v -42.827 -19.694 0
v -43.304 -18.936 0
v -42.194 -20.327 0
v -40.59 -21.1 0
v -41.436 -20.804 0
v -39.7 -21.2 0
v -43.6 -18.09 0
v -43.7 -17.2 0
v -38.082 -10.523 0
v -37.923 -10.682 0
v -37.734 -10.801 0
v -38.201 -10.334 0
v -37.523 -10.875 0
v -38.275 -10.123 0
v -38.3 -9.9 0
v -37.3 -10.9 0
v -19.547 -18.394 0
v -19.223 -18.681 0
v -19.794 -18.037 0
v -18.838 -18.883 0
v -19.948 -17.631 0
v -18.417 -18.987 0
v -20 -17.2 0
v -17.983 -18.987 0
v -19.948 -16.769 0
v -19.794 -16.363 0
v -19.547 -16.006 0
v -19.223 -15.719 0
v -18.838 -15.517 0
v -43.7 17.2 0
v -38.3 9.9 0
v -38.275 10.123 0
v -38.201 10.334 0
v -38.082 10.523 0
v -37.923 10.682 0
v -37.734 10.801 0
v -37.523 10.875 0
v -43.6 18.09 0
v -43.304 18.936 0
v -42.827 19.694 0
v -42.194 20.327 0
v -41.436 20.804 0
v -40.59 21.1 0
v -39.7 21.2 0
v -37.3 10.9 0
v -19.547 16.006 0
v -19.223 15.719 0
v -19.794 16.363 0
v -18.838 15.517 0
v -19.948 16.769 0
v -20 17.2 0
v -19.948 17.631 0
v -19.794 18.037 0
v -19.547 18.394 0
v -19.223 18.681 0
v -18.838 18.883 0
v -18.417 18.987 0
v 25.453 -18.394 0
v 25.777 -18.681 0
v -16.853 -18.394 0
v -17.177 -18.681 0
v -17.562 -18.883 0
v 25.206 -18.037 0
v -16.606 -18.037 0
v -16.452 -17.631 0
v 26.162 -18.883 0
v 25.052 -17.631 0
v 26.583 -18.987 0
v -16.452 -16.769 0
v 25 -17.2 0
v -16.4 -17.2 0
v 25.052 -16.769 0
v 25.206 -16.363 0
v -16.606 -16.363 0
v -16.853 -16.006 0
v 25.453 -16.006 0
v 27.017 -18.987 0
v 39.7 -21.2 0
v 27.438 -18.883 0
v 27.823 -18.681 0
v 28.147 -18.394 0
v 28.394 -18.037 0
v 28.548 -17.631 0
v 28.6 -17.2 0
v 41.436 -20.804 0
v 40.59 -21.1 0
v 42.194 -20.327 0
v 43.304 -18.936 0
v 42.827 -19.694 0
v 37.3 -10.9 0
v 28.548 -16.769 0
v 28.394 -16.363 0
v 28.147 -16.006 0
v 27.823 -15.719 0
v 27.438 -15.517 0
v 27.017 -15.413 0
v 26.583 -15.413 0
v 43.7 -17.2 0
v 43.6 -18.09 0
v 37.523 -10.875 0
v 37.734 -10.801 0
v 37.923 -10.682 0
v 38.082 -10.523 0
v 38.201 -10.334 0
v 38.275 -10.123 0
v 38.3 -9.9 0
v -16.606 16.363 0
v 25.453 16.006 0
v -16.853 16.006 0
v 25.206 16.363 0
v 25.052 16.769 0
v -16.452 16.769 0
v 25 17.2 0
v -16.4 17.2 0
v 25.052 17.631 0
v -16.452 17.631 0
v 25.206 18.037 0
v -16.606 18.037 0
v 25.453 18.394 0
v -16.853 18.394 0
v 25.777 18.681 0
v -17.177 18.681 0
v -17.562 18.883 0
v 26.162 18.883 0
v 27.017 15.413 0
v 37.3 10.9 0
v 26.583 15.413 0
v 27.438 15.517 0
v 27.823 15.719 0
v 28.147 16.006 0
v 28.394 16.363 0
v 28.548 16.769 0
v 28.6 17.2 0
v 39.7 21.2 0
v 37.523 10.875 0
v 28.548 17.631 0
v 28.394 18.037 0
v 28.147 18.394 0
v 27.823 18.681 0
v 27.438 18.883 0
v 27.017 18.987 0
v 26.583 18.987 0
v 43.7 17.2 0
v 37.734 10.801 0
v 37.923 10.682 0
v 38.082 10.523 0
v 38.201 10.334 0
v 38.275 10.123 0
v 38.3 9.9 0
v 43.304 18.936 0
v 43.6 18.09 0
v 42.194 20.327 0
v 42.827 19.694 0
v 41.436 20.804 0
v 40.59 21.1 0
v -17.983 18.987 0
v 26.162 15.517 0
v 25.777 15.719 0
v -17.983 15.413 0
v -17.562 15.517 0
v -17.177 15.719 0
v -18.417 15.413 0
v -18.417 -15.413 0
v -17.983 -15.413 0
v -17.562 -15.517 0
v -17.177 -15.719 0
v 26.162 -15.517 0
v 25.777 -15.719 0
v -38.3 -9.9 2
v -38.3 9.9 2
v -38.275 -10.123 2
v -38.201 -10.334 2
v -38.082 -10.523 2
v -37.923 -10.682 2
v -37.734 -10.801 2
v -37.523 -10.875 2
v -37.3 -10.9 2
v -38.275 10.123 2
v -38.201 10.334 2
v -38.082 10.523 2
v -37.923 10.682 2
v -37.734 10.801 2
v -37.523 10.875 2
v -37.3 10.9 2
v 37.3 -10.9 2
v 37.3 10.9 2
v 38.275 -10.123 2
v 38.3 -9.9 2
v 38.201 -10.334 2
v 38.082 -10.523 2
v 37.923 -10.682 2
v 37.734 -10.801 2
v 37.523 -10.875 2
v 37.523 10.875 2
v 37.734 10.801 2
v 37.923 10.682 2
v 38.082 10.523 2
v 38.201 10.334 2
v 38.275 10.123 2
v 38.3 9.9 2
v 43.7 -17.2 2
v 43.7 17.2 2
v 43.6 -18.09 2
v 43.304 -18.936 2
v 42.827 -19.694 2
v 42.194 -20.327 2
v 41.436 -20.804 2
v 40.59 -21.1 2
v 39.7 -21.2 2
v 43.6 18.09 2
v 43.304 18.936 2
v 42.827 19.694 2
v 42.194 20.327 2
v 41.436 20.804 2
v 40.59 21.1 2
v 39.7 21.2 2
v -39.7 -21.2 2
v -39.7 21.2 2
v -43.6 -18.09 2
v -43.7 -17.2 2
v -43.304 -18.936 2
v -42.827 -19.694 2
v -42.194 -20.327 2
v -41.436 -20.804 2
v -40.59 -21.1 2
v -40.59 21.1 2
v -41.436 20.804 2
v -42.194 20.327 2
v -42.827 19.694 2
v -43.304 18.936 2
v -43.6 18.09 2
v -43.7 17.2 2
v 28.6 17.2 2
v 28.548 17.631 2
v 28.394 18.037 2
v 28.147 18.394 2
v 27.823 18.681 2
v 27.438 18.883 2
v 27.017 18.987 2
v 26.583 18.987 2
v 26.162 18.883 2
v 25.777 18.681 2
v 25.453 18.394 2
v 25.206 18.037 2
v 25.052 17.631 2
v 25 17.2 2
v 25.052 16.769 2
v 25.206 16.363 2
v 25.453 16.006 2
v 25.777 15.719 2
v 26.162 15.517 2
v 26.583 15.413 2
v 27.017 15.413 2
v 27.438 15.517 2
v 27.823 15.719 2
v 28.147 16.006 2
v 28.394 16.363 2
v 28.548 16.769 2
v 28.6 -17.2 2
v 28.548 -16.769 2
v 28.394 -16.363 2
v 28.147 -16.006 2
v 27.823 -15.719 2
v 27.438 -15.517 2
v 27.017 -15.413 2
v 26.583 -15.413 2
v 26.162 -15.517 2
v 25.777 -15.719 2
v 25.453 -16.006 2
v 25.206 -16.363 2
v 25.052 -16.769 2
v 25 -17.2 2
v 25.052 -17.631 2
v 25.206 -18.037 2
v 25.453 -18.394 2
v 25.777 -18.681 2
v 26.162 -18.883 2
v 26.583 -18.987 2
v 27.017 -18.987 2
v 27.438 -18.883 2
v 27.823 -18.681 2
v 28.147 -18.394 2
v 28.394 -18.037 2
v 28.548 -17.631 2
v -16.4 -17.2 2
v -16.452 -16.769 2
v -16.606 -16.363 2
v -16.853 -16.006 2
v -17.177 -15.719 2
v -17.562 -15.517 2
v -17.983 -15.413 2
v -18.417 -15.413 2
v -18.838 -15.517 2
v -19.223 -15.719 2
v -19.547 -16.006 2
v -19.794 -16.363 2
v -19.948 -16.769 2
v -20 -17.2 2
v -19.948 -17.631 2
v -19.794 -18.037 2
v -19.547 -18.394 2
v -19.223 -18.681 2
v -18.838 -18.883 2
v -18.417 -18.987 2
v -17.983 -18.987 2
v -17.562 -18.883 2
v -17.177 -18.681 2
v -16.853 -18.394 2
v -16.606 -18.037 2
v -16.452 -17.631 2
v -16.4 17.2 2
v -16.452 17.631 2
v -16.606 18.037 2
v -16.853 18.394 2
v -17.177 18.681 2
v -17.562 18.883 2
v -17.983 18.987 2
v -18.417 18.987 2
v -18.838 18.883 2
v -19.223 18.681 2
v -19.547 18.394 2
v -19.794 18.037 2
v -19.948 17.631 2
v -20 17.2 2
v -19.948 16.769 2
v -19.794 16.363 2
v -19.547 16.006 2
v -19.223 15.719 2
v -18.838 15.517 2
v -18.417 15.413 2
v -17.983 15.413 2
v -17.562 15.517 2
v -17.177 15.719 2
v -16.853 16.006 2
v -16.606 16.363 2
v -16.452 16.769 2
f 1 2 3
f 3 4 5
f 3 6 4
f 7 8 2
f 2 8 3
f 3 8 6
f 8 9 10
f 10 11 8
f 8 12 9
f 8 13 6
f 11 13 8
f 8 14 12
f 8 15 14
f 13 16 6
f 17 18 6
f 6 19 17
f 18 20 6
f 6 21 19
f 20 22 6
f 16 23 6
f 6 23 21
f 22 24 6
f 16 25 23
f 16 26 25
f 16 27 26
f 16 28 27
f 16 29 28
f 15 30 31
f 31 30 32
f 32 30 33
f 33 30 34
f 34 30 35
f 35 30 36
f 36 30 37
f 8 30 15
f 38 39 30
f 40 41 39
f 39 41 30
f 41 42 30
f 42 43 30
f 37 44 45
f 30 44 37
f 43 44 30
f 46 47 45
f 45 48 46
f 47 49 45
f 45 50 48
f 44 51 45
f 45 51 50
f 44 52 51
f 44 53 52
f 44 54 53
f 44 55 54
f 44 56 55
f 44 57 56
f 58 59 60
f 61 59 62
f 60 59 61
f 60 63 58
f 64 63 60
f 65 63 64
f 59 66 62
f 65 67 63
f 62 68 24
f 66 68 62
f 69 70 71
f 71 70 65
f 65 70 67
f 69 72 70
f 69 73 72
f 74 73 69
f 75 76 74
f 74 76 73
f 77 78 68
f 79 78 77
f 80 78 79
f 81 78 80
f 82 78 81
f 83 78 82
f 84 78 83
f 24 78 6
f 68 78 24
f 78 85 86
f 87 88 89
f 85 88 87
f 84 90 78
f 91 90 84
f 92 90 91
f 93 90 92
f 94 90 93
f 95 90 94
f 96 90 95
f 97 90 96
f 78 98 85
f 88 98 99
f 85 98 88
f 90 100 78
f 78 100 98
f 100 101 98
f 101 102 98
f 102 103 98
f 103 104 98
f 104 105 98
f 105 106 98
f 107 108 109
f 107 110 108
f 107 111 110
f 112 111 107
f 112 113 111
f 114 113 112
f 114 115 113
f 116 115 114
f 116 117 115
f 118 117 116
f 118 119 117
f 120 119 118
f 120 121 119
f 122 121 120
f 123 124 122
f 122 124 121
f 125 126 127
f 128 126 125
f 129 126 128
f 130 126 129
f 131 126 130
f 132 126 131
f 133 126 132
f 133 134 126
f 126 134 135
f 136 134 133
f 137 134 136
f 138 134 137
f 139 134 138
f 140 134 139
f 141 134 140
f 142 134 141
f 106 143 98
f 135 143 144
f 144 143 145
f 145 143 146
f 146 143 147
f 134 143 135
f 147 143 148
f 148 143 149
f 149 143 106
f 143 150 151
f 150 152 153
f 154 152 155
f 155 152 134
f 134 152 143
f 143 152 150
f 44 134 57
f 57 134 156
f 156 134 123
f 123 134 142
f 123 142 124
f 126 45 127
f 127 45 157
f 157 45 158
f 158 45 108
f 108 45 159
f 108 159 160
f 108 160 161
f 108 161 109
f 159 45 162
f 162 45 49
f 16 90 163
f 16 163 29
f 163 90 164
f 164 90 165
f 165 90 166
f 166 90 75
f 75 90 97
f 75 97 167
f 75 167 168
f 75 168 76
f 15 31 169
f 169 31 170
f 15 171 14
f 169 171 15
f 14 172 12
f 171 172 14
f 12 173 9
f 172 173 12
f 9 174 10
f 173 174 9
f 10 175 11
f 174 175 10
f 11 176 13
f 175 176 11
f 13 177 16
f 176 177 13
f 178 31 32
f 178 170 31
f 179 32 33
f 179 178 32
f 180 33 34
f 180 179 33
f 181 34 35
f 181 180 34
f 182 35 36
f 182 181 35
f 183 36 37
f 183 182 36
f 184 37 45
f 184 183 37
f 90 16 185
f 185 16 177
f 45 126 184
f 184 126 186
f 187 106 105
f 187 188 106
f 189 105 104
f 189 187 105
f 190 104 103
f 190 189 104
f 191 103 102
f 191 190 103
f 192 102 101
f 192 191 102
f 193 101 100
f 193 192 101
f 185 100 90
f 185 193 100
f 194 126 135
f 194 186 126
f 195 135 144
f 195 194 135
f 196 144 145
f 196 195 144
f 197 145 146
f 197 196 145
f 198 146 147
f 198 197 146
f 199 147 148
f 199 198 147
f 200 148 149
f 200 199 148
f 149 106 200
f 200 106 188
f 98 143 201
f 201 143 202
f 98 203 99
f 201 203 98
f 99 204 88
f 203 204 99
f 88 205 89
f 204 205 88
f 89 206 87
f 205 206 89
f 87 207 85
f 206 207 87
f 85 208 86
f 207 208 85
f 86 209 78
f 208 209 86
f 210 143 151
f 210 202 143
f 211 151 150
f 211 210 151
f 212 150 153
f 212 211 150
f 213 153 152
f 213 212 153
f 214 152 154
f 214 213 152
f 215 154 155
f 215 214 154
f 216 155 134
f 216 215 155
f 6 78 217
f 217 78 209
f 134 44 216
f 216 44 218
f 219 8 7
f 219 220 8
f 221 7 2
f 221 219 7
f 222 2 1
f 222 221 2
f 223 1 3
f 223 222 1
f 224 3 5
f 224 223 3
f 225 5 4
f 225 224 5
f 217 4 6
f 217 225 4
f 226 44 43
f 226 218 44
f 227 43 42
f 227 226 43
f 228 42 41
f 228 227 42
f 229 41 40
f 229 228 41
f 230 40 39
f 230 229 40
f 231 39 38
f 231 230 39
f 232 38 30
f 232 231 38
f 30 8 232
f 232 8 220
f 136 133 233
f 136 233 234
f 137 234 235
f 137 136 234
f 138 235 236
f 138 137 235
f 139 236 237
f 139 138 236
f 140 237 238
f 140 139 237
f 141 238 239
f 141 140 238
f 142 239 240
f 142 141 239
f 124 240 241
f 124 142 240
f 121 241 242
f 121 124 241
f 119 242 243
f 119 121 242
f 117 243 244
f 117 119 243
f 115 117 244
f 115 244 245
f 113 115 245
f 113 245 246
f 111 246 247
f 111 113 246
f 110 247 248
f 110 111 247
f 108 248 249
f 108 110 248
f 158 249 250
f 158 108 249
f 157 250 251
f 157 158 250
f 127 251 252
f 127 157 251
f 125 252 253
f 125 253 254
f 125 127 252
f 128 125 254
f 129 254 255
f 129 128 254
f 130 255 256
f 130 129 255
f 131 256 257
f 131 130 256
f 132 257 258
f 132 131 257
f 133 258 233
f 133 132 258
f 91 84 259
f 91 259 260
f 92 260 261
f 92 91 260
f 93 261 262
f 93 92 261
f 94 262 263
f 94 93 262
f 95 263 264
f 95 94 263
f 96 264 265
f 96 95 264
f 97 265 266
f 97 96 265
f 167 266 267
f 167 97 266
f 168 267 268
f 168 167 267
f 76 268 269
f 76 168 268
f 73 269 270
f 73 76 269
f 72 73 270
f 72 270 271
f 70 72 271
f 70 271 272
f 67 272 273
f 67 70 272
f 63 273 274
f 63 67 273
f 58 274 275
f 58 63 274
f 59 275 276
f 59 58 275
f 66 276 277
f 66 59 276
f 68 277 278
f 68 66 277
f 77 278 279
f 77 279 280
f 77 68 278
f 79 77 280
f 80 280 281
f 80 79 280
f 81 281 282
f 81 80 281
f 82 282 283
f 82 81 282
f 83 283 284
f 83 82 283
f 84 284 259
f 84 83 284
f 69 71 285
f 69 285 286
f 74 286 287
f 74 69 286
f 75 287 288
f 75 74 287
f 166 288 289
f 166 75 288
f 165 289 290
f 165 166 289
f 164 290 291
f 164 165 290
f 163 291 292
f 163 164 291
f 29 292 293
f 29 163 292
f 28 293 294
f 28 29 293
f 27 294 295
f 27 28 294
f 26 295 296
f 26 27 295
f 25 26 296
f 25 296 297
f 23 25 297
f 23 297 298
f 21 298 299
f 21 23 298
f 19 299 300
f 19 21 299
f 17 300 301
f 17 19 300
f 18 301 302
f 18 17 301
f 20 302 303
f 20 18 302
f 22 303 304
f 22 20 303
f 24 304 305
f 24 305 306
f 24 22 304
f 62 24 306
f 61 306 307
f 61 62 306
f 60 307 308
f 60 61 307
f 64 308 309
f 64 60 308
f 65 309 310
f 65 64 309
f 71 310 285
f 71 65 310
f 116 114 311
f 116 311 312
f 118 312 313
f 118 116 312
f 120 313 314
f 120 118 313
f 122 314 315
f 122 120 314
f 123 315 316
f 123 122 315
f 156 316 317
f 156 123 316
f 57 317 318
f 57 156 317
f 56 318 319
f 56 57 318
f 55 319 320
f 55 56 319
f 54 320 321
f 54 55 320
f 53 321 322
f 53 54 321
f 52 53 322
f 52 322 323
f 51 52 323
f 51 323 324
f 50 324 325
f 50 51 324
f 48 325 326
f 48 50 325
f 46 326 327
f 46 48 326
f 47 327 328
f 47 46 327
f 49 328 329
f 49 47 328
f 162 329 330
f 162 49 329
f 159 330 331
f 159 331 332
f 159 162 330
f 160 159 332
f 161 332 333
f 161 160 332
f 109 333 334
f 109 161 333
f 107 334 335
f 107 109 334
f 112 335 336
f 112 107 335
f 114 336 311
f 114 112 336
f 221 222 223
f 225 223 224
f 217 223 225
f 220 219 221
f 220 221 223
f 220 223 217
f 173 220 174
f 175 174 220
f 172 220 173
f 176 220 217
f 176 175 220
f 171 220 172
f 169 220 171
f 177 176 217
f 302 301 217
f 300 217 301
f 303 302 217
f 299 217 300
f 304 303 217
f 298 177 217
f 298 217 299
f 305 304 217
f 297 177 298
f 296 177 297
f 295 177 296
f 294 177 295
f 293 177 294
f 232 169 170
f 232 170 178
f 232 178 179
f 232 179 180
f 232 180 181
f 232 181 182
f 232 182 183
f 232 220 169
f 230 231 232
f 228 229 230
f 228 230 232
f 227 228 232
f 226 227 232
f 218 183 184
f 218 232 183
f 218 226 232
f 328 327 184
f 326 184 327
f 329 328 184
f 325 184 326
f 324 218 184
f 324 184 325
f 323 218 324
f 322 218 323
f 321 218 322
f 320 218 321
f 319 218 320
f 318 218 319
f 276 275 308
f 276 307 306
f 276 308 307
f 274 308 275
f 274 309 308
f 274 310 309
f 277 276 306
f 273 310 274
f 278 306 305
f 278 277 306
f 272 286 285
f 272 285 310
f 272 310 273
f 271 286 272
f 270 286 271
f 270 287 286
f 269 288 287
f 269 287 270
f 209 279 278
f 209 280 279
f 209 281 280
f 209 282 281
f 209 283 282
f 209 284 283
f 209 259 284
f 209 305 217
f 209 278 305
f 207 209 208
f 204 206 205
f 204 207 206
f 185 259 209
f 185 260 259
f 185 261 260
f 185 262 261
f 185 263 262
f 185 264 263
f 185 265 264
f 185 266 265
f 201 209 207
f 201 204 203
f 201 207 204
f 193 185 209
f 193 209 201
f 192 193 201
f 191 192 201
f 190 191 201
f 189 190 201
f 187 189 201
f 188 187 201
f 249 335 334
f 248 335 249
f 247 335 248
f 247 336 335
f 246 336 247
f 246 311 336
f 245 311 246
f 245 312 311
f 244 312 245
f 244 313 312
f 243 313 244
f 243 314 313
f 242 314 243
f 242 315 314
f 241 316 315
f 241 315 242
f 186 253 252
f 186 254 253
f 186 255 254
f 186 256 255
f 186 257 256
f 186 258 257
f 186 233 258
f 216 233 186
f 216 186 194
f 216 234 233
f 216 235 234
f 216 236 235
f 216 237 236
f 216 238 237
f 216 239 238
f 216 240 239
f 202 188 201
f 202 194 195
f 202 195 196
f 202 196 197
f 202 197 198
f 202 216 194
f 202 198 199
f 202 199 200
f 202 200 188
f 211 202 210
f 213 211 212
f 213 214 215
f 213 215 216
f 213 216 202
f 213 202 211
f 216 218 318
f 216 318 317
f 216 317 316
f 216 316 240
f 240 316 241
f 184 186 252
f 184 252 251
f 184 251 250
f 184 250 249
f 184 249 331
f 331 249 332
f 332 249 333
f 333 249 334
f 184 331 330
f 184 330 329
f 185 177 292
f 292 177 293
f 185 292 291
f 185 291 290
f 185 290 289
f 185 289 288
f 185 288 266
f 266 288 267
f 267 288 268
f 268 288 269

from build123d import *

# Parameters (mm, degrees)
SKETCH_W    = 87.4
SKETCH_H    = 42.4
SKETCH_R    = 1.8
SKETCH_W_2  = 76.6
SKETCH_H_2  = 21.8
PAD_DEPTH   = 2
FILLET_R    = 4
FILLET001_R = 1


with BuildPart() as part:
    # Sketch → Pad (new body)
    with BuildSketch(Plane.XY):
        Rectangle(SKETCH_W, SKETCH_H)
        with Locations((-18.2, 17.2)):
            Circle(SKETCH_R, mode=Mode.SUBTRACT)
        with Locations((-18.2, -17.2)):
            Circle(SKETCH_R, mode=Mode.SUBTRACT)
        with Locations((26.8, -17.2)):
            Circle(SKETCH_R, mode=Mode.SUBTRACT)
        with Locations((26.8, 17.2)):
            Circle(SKETCH_R, mode=Mode.SUBTRACT)
        Rectangle(SKETCH_W_2, SKETCH_H_2, mode=Mode.SUBTRACT)
    extrude(amount=PAD_DEPTH)

    # Fillet
    fillet_edges = [part.edges().sort_by_distance(p)[0] for p in [
        (43.7, -21.2, 1),
        (-43.7, -21.2, 1),
        (43.7, 21.2, 1),
        (-43.7, 21.2, 1),
    ]]
    fillet(fillet_edges, radius=FILLET_R)

    # Fillet001
    fillet001_edges = [part.edges().sort_by_distance(p)[0] for p in [
        (38.3, 10.9, 1),
        (38.3, -10.9, 1),
        (-38.3, -10.9, 1),
        (-38.3, 10.9, 1),
    ]]
    fillet(fillet001_edges, radius=FILLET001_R)


solid = part.part
